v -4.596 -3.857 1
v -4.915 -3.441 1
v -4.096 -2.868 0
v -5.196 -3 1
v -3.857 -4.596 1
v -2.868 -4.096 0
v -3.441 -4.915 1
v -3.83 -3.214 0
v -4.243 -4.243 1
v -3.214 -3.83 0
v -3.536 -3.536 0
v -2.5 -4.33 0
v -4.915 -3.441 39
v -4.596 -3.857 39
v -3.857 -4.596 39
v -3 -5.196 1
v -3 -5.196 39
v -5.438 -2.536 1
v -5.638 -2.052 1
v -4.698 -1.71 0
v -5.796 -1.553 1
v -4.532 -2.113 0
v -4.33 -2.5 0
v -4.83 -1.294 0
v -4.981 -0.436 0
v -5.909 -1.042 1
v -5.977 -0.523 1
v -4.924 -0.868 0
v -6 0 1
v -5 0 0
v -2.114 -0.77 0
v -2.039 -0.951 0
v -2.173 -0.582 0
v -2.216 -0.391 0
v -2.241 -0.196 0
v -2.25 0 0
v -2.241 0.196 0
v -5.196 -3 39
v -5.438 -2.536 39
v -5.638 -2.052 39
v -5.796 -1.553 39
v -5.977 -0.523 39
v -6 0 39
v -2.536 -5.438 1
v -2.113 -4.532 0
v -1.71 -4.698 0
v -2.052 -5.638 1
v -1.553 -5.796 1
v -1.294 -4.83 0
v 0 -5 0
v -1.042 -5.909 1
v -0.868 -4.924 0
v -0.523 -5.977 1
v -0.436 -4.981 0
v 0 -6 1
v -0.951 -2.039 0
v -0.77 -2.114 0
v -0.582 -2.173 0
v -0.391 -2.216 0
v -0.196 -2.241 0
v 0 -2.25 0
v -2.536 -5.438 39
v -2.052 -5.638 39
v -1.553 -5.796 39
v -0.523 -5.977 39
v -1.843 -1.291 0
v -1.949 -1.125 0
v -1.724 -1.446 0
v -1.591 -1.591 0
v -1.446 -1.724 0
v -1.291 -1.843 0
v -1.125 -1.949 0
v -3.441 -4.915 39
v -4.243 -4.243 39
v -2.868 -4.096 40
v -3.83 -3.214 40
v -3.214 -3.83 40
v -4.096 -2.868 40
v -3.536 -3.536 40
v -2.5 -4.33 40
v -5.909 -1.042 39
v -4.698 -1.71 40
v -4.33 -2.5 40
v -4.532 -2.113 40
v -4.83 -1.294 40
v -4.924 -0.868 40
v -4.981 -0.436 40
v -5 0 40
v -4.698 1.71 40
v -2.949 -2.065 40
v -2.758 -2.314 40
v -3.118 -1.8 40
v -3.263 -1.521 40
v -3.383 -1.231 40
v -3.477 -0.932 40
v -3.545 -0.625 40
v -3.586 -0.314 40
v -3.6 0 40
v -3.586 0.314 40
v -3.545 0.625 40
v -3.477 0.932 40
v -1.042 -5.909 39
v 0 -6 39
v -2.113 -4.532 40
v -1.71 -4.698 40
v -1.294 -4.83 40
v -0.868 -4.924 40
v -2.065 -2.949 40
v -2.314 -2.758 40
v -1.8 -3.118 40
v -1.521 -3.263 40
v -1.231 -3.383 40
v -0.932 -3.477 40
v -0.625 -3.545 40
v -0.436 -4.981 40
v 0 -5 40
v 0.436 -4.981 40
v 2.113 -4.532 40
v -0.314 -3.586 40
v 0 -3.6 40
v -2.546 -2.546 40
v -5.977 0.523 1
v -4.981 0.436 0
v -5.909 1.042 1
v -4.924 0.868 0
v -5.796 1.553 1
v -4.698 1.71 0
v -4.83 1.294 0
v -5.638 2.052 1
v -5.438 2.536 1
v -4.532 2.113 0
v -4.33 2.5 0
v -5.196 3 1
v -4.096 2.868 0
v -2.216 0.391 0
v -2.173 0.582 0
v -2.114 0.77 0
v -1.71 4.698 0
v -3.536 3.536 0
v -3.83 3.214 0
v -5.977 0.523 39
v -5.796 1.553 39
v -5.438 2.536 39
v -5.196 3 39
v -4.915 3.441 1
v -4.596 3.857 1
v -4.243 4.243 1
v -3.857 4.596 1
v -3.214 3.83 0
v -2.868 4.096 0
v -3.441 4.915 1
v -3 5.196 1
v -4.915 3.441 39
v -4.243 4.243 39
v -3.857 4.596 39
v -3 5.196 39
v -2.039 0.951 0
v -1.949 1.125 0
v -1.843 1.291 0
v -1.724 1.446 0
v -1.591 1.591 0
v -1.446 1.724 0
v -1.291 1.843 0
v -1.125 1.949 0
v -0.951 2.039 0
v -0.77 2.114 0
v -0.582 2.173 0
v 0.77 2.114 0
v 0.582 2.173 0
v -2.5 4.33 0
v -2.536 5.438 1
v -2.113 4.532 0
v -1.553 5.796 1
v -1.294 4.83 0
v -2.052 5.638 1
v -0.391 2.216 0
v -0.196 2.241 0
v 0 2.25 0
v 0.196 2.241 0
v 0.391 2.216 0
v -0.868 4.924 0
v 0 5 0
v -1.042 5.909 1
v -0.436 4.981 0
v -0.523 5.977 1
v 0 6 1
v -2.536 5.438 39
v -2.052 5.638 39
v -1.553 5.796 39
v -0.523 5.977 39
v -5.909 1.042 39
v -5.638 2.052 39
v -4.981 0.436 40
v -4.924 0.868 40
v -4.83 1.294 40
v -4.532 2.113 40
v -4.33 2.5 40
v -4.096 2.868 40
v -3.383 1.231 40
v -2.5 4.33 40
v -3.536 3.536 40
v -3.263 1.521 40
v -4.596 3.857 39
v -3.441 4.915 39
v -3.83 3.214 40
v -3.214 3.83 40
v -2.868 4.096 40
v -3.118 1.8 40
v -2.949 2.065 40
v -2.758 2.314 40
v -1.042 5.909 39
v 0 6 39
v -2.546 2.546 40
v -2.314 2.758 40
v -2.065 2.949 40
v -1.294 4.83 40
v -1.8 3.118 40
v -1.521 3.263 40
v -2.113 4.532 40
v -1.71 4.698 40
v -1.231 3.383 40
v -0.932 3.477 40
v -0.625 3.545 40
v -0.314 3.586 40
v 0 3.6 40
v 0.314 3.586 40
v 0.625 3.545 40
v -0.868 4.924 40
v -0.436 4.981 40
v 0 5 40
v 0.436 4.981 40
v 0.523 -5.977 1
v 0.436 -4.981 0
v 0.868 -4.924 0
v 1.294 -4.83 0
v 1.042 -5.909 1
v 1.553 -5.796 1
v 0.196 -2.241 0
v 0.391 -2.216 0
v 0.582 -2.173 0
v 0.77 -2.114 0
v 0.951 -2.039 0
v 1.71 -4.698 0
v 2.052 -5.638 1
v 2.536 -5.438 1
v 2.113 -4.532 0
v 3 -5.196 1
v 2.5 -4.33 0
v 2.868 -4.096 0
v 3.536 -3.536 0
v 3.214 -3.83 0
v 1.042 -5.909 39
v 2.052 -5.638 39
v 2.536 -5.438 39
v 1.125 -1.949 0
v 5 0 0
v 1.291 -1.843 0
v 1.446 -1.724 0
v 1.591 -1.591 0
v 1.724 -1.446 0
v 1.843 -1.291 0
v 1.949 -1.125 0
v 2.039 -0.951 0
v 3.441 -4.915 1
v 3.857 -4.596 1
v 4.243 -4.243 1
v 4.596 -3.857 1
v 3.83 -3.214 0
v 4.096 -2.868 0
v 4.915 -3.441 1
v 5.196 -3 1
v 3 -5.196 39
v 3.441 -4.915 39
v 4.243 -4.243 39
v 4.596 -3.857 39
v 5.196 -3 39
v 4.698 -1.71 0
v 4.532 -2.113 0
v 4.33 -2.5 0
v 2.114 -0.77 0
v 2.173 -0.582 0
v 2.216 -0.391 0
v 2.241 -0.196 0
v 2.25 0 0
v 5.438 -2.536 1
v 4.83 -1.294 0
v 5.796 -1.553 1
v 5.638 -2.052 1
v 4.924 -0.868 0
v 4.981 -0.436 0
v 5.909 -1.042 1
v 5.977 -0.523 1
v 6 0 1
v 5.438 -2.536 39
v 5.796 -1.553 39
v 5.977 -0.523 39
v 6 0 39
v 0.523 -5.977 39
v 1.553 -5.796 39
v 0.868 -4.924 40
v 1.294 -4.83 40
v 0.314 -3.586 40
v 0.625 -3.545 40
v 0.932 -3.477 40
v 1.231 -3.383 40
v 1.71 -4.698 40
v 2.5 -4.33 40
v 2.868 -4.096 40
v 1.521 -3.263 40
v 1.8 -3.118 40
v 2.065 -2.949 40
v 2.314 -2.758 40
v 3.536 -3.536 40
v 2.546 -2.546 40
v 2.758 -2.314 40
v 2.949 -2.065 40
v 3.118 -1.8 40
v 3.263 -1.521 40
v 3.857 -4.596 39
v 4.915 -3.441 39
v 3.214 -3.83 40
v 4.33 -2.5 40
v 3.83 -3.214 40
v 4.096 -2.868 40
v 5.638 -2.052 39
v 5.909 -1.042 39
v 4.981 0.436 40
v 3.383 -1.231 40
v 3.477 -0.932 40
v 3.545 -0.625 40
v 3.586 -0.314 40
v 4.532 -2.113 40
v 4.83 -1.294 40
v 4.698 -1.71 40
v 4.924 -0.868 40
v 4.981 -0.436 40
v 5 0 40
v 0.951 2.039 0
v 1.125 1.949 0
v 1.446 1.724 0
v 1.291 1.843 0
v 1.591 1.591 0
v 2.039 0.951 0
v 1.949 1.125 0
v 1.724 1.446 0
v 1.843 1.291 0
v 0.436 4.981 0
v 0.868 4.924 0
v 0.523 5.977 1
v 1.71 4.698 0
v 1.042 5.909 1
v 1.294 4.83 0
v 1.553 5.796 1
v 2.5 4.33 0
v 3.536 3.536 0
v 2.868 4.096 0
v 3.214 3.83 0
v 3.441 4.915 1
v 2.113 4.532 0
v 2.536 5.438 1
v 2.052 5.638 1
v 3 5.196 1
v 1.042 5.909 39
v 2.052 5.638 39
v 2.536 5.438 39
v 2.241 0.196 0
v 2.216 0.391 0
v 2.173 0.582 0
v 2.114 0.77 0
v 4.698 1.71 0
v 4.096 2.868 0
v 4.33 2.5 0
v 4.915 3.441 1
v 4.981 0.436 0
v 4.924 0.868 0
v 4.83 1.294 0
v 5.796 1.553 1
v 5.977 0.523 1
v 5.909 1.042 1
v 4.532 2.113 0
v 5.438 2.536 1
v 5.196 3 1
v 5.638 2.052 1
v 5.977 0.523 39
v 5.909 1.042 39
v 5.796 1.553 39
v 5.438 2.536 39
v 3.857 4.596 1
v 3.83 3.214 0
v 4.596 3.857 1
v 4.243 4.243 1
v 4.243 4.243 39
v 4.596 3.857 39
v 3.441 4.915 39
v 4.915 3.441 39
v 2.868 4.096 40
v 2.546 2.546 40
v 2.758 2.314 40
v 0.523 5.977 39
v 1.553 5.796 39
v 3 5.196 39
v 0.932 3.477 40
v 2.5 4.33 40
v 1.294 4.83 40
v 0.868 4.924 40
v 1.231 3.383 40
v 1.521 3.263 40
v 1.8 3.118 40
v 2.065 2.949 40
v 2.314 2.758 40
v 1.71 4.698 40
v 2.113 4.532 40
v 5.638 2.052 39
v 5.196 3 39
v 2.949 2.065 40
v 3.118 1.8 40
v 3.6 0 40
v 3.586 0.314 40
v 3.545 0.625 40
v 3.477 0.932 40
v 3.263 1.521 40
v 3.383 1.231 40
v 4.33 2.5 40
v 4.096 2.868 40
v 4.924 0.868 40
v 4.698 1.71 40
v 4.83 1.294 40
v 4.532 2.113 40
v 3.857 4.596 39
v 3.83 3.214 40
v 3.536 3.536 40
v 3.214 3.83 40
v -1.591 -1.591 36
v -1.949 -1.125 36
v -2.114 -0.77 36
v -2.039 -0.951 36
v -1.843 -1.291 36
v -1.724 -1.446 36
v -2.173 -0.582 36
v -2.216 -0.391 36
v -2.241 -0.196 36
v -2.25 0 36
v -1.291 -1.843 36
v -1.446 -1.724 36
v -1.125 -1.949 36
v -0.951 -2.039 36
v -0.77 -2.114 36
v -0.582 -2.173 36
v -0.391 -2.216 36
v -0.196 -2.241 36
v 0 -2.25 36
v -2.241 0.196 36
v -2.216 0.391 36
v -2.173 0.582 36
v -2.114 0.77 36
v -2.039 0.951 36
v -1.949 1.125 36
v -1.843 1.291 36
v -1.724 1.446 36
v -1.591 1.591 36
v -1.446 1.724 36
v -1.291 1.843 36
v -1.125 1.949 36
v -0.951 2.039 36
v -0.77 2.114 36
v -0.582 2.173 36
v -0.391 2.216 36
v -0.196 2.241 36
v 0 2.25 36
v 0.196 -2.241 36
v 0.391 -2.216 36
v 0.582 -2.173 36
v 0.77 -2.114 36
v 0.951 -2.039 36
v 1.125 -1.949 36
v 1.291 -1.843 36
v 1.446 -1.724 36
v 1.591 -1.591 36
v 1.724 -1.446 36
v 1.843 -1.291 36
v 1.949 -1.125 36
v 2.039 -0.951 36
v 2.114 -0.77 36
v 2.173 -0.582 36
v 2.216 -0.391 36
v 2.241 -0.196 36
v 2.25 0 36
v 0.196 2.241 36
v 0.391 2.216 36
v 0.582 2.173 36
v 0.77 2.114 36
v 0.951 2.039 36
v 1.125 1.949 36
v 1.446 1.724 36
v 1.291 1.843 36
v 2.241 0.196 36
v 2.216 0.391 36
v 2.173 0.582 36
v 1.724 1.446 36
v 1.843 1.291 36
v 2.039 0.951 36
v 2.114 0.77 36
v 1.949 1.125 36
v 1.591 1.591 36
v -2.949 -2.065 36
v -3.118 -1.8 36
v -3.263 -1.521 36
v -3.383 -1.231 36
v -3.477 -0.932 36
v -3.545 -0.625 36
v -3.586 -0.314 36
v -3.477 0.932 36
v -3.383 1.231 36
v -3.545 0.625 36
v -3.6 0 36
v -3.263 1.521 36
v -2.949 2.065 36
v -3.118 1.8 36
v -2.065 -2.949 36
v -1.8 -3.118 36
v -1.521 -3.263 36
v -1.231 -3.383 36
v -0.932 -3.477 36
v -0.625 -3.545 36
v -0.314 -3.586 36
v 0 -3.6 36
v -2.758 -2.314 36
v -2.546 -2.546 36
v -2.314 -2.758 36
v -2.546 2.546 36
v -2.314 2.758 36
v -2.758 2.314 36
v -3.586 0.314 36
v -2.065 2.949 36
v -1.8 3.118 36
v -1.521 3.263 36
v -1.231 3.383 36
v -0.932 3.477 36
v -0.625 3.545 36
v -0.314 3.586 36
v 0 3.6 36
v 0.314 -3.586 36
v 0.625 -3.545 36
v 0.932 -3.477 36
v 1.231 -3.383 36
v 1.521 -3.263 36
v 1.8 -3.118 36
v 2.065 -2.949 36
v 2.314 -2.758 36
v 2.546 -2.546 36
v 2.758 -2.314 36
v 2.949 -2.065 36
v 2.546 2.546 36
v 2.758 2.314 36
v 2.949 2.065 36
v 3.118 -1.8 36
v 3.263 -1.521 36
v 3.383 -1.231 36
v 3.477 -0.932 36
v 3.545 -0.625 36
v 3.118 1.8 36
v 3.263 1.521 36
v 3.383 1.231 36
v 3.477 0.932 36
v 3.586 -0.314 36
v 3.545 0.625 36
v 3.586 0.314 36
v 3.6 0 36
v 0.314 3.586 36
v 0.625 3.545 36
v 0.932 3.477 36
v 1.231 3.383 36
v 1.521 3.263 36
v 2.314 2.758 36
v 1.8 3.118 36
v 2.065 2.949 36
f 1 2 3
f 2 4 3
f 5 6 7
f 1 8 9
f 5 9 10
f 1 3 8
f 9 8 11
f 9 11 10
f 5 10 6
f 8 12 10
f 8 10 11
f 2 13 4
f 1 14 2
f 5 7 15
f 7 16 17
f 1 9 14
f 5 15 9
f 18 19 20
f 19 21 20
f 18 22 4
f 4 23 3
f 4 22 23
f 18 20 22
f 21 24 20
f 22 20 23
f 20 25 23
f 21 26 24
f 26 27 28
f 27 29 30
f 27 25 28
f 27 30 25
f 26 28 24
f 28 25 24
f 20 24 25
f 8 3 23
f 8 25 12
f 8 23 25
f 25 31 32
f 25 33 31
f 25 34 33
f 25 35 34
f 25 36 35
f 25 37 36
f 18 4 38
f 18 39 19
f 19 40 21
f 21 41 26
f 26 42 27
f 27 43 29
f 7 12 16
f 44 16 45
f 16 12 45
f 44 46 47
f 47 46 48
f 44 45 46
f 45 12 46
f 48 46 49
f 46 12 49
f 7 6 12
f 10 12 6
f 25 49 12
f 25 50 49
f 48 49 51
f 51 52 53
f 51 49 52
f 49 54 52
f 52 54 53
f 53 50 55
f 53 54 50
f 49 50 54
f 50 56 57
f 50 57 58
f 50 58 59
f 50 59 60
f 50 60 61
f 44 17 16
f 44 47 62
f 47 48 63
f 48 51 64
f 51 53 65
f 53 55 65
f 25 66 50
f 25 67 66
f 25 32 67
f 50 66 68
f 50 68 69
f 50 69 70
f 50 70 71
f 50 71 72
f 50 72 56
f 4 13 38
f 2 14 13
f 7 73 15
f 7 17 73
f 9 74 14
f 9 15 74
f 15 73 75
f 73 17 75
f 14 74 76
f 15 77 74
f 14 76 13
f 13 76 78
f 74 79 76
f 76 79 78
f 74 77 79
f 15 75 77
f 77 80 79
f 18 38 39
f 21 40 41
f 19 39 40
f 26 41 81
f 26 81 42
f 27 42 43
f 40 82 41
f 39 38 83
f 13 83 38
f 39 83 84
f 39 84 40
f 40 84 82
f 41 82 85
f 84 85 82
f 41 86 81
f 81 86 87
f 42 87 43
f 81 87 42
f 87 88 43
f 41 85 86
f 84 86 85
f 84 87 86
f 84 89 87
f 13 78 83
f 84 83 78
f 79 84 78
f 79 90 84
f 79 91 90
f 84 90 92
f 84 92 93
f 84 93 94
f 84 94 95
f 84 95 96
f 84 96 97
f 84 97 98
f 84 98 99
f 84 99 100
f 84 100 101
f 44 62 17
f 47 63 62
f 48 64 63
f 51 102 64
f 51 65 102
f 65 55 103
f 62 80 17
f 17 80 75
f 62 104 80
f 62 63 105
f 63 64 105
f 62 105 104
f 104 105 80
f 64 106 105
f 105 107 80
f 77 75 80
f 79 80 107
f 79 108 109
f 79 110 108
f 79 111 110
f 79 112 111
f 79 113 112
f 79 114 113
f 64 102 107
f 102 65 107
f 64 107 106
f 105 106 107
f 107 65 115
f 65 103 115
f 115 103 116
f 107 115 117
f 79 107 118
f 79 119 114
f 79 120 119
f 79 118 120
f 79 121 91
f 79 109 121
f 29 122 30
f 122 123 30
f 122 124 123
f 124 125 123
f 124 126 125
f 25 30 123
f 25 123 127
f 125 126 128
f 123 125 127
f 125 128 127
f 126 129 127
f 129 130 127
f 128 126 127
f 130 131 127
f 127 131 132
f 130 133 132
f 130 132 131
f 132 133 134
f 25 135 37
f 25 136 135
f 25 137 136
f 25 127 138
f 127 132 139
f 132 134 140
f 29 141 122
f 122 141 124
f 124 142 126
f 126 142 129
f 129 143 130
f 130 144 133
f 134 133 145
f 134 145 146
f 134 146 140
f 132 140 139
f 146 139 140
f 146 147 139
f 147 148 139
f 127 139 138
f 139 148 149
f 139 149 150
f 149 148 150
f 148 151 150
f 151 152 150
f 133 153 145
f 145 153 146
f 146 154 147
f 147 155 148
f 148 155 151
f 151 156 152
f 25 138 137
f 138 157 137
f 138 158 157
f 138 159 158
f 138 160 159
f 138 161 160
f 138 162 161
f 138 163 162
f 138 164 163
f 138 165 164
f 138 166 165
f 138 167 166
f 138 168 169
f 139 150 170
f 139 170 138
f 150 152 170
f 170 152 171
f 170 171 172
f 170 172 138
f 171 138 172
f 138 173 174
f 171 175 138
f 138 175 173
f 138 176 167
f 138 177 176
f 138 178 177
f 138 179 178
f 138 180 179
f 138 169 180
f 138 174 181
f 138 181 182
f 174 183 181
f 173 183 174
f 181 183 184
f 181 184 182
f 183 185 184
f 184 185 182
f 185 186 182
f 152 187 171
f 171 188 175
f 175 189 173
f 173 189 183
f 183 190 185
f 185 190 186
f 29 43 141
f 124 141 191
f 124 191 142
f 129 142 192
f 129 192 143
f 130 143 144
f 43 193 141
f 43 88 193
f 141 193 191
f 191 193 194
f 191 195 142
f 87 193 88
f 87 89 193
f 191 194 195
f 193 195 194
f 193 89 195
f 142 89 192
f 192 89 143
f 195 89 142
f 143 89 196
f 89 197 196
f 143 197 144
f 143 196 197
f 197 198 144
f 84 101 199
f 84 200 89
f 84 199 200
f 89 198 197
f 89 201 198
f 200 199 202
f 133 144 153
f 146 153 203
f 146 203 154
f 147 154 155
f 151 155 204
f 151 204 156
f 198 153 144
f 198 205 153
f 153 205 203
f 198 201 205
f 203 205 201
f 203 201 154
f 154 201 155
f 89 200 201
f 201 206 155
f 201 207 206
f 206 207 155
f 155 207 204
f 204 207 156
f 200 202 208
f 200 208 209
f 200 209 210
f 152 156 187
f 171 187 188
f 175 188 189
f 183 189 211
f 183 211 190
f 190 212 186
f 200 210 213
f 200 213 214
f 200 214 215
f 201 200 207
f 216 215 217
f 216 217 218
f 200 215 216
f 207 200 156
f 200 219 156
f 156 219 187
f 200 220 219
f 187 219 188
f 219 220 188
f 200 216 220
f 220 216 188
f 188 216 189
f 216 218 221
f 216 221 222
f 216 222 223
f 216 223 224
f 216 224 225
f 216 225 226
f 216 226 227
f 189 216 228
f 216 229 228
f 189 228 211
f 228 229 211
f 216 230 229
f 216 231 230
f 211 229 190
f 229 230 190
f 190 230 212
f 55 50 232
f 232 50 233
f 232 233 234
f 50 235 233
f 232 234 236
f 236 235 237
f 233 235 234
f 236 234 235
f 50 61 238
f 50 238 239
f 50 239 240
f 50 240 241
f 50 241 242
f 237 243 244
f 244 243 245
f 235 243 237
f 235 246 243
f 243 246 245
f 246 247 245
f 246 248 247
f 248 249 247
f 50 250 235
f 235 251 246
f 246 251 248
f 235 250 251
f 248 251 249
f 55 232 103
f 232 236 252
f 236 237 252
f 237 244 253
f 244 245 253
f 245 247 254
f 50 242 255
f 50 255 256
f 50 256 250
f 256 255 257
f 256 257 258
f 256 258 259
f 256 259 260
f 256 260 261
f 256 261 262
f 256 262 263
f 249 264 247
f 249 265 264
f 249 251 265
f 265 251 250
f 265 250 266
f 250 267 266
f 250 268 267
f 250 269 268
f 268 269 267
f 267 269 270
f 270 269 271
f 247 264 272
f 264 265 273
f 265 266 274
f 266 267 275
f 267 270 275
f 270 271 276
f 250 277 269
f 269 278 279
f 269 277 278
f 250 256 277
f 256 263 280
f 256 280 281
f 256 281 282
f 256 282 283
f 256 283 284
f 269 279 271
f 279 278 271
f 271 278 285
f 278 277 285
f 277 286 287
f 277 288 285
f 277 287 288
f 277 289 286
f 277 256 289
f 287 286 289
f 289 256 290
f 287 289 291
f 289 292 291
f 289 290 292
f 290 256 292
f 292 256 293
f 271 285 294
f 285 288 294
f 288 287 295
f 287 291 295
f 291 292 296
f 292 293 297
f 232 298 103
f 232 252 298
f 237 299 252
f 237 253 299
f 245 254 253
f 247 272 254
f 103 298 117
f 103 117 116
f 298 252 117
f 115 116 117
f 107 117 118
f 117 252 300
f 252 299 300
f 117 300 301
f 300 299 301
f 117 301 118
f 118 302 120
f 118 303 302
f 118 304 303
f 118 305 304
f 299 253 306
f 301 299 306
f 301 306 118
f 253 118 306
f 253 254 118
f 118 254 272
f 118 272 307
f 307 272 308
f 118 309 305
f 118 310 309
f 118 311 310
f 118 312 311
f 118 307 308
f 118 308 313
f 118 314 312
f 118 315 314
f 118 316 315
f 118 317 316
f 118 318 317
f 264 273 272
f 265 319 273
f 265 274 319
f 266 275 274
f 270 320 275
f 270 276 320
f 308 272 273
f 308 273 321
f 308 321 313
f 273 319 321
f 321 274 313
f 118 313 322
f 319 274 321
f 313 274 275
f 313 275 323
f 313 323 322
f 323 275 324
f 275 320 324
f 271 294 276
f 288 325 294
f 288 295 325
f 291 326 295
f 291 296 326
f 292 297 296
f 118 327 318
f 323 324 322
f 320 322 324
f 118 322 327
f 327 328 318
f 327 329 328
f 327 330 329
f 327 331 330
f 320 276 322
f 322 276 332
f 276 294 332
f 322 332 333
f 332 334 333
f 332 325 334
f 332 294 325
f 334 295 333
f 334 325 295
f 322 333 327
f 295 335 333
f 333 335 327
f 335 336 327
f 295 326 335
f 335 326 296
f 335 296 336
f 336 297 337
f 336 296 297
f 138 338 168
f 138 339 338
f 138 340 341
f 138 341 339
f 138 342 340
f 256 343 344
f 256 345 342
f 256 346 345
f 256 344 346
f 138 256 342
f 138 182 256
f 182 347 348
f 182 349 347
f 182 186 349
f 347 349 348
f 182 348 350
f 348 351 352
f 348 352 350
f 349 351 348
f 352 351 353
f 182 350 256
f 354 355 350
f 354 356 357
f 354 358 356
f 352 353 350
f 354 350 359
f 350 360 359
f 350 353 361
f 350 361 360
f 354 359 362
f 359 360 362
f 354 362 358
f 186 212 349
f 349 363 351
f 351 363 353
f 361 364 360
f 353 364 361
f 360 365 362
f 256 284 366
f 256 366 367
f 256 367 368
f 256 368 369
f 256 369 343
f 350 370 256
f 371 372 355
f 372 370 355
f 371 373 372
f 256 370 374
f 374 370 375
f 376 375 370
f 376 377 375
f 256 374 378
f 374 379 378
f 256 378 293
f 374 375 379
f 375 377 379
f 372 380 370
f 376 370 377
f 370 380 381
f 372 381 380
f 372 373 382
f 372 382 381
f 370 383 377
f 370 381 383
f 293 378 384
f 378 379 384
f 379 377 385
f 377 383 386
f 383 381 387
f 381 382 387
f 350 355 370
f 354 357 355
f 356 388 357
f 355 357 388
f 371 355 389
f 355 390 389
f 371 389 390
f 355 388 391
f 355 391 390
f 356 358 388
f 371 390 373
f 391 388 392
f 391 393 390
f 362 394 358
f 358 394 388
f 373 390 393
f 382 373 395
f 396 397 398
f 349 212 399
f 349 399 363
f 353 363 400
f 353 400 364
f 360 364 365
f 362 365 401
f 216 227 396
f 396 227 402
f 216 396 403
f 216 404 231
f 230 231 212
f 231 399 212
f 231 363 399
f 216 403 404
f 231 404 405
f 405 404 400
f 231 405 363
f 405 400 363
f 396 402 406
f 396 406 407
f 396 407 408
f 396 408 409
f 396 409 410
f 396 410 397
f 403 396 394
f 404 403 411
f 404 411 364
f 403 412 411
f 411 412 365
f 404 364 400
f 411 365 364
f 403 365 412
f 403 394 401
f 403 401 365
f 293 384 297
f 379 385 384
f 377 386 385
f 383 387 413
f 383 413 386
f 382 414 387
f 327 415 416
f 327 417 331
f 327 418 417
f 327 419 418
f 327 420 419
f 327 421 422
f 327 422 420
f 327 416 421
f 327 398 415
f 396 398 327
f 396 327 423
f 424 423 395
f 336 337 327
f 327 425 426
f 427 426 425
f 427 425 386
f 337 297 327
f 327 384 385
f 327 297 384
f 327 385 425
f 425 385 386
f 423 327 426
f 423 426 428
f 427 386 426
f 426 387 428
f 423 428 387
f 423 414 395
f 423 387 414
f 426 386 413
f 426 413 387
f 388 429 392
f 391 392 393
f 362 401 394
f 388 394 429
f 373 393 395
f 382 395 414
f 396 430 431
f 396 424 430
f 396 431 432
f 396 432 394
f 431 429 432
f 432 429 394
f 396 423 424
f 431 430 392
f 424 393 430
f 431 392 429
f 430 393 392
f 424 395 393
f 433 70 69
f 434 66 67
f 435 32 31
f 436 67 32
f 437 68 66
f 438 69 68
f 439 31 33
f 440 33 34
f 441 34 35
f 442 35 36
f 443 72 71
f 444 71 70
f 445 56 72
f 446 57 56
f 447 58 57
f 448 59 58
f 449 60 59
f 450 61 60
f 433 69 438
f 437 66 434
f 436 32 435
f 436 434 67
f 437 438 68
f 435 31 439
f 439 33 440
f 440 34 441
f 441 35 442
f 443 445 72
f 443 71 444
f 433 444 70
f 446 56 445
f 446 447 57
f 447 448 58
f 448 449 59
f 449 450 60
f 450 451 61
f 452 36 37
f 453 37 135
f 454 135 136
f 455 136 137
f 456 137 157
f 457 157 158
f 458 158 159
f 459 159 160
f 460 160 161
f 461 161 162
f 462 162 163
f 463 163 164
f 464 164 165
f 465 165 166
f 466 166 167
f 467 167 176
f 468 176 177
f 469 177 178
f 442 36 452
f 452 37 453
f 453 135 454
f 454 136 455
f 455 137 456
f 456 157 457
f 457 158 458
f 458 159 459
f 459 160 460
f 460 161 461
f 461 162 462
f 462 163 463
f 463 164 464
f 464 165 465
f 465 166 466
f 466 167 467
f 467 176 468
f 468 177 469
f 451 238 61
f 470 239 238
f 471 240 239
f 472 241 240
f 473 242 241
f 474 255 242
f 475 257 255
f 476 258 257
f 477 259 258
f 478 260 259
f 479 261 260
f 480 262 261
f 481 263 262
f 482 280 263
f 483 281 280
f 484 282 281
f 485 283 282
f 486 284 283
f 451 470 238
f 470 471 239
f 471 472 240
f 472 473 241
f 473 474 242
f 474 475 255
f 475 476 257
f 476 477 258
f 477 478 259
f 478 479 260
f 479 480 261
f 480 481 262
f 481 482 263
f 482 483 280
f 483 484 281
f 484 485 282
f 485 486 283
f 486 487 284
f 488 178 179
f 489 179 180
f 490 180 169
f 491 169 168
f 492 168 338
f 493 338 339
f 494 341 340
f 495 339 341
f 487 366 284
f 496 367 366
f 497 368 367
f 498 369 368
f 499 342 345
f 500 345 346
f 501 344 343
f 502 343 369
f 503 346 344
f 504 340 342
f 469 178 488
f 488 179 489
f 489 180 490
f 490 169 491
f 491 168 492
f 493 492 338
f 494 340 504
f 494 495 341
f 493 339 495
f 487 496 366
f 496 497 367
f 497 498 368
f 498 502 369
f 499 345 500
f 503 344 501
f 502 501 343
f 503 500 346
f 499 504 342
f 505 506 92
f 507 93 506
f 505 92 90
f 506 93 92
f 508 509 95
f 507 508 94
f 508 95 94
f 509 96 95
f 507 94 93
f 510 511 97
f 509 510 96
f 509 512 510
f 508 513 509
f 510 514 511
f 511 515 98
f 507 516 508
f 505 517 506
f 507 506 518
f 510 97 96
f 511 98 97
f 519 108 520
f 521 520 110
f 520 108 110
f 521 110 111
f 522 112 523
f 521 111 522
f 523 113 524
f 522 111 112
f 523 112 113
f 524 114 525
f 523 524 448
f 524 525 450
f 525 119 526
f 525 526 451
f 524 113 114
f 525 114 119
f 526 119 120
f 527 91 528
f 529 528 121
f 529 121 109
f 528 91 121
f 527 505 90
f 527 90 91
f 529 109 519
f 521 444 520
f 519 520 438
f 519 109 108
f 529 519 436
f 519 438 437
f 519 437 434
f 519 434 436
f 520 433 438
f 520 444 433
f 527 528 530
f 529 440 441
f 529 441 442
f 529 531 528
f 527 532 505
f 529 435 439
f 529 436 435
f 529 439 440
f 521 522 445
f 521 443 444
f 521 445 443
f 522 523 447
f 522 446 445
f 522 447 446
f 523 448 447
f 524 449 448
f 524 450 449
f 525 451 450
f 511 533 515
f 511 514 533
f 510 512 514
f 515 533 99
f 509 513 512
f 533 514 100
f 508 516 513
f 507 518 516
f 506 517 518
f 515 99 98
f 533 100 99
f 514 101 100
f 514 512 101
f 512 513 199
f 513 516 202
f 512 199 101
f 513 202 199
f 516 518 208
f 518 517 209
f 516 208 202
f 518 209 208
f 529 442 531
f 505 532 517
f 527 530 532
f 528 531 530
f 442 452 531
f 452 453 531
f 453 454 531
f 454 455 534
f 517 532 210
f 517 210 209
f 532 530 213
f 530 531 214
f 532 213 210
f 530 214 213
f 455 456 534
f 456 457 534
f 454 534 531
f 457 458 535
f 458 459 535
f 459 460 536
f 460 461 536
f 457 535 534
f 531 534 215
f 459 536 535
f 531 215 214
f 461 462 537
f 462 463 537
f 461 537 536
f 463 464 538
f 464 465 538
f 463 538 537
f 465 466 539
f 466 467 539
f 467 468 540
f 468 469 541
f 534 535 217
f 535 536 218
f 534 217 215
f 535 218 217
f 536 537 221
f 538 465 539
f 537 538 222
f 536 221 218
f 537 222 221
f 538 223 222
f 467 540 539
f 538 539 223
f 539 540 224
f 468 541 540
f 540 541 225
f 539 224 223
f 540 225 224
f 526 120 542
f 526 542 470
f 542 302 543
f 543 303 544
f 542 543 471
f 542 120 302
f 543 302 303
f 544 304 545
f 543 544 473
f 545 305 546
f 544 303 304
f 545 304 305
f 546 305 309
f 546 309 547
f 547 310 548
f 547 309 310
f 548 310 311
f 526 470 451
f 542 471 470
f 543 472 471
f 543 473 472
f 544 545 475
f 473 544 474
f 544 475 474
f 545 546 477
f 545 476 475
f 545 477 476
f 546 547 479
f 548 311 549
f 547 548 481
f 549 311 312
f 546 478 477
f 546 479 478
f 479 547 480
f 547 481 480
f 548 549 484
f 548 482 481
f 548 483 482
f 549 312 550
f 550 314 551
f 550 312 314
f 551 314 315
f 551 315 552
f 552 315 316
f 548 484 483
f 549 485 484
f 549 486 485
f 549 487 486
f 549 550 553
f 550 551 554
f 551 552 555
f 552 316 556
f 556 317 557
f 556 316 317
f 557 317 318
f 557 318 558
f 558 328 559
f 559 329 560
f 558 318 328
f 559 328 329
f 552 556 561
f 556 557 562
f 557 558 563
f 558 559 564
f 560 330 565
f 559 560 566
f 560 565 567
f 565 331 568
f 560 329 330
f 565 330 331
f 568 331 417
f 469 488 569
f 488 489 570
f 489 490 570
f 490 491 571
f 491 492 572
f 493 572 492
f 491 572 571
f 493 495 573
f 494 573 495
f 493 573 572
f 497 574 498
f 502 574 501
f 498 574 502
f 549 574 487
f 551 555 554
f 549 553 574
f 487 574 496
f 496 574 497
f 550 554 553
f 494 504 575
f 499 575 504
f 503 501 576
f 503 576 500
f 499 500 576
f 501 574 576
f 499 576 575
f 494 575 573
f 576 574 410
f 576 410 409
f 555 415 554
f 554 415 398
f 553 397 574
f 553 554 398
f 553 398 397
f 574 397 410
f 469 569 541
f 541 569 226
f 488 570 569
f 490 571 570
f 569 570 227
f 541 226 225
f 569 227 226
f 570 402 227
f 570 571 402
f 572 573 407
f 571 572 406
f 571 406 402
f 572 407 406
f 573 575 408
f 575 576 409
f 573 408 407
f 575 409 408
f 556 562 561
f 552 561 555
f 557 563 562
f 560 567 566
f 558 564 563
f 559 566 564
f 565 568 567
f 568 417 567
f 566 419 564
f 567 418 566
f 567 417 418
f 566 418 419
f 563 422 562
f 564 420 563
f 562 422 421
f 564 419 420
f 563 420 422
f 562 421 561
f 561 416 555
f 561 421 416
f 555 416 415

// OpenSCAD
// ============================================================================
// CyberWing — Nano->Orin standoff, 40 mm, 8-32  (print 4, PLA)
// 40 mm tall, through-hole sized for a #8-32 screw, head counterbored at top.
// Clears the Nano + heatsink (~29 mm) with plenty of margin.
// ============================================================================
$fn = 72;

H      = 40.0;   // standoff length
OD     = 12;     // outer diameter
HOLE   = 4.5;    // #8-32 clearance through-hole (major Ø 4.17)
CB_D   = 7.2;    // counterbore for the #8-32 head (socket cap ~6.4)
CB_H   = 4.0;    // counterbore depth
CHAM   = 1.0;    // top/bottom edge chamfer

module standoff() {
  difference() {
    hull() {
      translate([0,0,CHAM])      cylinder(d=OD, h=H-2*CHAM);
      cylinder(d1=OD-2*CHAM, d2=OD, h=CHAM);
      translate([0,0,H-CHAM])    cylinder(d1=OD, d2=OD-2*CHAM, h=CHAM);
    }
    translate([0,0,-0.1]) cylinder(d=HOLE, h=H+0.2);          // #8-32 through-hole
    translate([0,0,H-CB_H]) cylinder(d=CB_D, h=CB_H+0.1);     // top counterbore (head)
  }
}

standoff();
